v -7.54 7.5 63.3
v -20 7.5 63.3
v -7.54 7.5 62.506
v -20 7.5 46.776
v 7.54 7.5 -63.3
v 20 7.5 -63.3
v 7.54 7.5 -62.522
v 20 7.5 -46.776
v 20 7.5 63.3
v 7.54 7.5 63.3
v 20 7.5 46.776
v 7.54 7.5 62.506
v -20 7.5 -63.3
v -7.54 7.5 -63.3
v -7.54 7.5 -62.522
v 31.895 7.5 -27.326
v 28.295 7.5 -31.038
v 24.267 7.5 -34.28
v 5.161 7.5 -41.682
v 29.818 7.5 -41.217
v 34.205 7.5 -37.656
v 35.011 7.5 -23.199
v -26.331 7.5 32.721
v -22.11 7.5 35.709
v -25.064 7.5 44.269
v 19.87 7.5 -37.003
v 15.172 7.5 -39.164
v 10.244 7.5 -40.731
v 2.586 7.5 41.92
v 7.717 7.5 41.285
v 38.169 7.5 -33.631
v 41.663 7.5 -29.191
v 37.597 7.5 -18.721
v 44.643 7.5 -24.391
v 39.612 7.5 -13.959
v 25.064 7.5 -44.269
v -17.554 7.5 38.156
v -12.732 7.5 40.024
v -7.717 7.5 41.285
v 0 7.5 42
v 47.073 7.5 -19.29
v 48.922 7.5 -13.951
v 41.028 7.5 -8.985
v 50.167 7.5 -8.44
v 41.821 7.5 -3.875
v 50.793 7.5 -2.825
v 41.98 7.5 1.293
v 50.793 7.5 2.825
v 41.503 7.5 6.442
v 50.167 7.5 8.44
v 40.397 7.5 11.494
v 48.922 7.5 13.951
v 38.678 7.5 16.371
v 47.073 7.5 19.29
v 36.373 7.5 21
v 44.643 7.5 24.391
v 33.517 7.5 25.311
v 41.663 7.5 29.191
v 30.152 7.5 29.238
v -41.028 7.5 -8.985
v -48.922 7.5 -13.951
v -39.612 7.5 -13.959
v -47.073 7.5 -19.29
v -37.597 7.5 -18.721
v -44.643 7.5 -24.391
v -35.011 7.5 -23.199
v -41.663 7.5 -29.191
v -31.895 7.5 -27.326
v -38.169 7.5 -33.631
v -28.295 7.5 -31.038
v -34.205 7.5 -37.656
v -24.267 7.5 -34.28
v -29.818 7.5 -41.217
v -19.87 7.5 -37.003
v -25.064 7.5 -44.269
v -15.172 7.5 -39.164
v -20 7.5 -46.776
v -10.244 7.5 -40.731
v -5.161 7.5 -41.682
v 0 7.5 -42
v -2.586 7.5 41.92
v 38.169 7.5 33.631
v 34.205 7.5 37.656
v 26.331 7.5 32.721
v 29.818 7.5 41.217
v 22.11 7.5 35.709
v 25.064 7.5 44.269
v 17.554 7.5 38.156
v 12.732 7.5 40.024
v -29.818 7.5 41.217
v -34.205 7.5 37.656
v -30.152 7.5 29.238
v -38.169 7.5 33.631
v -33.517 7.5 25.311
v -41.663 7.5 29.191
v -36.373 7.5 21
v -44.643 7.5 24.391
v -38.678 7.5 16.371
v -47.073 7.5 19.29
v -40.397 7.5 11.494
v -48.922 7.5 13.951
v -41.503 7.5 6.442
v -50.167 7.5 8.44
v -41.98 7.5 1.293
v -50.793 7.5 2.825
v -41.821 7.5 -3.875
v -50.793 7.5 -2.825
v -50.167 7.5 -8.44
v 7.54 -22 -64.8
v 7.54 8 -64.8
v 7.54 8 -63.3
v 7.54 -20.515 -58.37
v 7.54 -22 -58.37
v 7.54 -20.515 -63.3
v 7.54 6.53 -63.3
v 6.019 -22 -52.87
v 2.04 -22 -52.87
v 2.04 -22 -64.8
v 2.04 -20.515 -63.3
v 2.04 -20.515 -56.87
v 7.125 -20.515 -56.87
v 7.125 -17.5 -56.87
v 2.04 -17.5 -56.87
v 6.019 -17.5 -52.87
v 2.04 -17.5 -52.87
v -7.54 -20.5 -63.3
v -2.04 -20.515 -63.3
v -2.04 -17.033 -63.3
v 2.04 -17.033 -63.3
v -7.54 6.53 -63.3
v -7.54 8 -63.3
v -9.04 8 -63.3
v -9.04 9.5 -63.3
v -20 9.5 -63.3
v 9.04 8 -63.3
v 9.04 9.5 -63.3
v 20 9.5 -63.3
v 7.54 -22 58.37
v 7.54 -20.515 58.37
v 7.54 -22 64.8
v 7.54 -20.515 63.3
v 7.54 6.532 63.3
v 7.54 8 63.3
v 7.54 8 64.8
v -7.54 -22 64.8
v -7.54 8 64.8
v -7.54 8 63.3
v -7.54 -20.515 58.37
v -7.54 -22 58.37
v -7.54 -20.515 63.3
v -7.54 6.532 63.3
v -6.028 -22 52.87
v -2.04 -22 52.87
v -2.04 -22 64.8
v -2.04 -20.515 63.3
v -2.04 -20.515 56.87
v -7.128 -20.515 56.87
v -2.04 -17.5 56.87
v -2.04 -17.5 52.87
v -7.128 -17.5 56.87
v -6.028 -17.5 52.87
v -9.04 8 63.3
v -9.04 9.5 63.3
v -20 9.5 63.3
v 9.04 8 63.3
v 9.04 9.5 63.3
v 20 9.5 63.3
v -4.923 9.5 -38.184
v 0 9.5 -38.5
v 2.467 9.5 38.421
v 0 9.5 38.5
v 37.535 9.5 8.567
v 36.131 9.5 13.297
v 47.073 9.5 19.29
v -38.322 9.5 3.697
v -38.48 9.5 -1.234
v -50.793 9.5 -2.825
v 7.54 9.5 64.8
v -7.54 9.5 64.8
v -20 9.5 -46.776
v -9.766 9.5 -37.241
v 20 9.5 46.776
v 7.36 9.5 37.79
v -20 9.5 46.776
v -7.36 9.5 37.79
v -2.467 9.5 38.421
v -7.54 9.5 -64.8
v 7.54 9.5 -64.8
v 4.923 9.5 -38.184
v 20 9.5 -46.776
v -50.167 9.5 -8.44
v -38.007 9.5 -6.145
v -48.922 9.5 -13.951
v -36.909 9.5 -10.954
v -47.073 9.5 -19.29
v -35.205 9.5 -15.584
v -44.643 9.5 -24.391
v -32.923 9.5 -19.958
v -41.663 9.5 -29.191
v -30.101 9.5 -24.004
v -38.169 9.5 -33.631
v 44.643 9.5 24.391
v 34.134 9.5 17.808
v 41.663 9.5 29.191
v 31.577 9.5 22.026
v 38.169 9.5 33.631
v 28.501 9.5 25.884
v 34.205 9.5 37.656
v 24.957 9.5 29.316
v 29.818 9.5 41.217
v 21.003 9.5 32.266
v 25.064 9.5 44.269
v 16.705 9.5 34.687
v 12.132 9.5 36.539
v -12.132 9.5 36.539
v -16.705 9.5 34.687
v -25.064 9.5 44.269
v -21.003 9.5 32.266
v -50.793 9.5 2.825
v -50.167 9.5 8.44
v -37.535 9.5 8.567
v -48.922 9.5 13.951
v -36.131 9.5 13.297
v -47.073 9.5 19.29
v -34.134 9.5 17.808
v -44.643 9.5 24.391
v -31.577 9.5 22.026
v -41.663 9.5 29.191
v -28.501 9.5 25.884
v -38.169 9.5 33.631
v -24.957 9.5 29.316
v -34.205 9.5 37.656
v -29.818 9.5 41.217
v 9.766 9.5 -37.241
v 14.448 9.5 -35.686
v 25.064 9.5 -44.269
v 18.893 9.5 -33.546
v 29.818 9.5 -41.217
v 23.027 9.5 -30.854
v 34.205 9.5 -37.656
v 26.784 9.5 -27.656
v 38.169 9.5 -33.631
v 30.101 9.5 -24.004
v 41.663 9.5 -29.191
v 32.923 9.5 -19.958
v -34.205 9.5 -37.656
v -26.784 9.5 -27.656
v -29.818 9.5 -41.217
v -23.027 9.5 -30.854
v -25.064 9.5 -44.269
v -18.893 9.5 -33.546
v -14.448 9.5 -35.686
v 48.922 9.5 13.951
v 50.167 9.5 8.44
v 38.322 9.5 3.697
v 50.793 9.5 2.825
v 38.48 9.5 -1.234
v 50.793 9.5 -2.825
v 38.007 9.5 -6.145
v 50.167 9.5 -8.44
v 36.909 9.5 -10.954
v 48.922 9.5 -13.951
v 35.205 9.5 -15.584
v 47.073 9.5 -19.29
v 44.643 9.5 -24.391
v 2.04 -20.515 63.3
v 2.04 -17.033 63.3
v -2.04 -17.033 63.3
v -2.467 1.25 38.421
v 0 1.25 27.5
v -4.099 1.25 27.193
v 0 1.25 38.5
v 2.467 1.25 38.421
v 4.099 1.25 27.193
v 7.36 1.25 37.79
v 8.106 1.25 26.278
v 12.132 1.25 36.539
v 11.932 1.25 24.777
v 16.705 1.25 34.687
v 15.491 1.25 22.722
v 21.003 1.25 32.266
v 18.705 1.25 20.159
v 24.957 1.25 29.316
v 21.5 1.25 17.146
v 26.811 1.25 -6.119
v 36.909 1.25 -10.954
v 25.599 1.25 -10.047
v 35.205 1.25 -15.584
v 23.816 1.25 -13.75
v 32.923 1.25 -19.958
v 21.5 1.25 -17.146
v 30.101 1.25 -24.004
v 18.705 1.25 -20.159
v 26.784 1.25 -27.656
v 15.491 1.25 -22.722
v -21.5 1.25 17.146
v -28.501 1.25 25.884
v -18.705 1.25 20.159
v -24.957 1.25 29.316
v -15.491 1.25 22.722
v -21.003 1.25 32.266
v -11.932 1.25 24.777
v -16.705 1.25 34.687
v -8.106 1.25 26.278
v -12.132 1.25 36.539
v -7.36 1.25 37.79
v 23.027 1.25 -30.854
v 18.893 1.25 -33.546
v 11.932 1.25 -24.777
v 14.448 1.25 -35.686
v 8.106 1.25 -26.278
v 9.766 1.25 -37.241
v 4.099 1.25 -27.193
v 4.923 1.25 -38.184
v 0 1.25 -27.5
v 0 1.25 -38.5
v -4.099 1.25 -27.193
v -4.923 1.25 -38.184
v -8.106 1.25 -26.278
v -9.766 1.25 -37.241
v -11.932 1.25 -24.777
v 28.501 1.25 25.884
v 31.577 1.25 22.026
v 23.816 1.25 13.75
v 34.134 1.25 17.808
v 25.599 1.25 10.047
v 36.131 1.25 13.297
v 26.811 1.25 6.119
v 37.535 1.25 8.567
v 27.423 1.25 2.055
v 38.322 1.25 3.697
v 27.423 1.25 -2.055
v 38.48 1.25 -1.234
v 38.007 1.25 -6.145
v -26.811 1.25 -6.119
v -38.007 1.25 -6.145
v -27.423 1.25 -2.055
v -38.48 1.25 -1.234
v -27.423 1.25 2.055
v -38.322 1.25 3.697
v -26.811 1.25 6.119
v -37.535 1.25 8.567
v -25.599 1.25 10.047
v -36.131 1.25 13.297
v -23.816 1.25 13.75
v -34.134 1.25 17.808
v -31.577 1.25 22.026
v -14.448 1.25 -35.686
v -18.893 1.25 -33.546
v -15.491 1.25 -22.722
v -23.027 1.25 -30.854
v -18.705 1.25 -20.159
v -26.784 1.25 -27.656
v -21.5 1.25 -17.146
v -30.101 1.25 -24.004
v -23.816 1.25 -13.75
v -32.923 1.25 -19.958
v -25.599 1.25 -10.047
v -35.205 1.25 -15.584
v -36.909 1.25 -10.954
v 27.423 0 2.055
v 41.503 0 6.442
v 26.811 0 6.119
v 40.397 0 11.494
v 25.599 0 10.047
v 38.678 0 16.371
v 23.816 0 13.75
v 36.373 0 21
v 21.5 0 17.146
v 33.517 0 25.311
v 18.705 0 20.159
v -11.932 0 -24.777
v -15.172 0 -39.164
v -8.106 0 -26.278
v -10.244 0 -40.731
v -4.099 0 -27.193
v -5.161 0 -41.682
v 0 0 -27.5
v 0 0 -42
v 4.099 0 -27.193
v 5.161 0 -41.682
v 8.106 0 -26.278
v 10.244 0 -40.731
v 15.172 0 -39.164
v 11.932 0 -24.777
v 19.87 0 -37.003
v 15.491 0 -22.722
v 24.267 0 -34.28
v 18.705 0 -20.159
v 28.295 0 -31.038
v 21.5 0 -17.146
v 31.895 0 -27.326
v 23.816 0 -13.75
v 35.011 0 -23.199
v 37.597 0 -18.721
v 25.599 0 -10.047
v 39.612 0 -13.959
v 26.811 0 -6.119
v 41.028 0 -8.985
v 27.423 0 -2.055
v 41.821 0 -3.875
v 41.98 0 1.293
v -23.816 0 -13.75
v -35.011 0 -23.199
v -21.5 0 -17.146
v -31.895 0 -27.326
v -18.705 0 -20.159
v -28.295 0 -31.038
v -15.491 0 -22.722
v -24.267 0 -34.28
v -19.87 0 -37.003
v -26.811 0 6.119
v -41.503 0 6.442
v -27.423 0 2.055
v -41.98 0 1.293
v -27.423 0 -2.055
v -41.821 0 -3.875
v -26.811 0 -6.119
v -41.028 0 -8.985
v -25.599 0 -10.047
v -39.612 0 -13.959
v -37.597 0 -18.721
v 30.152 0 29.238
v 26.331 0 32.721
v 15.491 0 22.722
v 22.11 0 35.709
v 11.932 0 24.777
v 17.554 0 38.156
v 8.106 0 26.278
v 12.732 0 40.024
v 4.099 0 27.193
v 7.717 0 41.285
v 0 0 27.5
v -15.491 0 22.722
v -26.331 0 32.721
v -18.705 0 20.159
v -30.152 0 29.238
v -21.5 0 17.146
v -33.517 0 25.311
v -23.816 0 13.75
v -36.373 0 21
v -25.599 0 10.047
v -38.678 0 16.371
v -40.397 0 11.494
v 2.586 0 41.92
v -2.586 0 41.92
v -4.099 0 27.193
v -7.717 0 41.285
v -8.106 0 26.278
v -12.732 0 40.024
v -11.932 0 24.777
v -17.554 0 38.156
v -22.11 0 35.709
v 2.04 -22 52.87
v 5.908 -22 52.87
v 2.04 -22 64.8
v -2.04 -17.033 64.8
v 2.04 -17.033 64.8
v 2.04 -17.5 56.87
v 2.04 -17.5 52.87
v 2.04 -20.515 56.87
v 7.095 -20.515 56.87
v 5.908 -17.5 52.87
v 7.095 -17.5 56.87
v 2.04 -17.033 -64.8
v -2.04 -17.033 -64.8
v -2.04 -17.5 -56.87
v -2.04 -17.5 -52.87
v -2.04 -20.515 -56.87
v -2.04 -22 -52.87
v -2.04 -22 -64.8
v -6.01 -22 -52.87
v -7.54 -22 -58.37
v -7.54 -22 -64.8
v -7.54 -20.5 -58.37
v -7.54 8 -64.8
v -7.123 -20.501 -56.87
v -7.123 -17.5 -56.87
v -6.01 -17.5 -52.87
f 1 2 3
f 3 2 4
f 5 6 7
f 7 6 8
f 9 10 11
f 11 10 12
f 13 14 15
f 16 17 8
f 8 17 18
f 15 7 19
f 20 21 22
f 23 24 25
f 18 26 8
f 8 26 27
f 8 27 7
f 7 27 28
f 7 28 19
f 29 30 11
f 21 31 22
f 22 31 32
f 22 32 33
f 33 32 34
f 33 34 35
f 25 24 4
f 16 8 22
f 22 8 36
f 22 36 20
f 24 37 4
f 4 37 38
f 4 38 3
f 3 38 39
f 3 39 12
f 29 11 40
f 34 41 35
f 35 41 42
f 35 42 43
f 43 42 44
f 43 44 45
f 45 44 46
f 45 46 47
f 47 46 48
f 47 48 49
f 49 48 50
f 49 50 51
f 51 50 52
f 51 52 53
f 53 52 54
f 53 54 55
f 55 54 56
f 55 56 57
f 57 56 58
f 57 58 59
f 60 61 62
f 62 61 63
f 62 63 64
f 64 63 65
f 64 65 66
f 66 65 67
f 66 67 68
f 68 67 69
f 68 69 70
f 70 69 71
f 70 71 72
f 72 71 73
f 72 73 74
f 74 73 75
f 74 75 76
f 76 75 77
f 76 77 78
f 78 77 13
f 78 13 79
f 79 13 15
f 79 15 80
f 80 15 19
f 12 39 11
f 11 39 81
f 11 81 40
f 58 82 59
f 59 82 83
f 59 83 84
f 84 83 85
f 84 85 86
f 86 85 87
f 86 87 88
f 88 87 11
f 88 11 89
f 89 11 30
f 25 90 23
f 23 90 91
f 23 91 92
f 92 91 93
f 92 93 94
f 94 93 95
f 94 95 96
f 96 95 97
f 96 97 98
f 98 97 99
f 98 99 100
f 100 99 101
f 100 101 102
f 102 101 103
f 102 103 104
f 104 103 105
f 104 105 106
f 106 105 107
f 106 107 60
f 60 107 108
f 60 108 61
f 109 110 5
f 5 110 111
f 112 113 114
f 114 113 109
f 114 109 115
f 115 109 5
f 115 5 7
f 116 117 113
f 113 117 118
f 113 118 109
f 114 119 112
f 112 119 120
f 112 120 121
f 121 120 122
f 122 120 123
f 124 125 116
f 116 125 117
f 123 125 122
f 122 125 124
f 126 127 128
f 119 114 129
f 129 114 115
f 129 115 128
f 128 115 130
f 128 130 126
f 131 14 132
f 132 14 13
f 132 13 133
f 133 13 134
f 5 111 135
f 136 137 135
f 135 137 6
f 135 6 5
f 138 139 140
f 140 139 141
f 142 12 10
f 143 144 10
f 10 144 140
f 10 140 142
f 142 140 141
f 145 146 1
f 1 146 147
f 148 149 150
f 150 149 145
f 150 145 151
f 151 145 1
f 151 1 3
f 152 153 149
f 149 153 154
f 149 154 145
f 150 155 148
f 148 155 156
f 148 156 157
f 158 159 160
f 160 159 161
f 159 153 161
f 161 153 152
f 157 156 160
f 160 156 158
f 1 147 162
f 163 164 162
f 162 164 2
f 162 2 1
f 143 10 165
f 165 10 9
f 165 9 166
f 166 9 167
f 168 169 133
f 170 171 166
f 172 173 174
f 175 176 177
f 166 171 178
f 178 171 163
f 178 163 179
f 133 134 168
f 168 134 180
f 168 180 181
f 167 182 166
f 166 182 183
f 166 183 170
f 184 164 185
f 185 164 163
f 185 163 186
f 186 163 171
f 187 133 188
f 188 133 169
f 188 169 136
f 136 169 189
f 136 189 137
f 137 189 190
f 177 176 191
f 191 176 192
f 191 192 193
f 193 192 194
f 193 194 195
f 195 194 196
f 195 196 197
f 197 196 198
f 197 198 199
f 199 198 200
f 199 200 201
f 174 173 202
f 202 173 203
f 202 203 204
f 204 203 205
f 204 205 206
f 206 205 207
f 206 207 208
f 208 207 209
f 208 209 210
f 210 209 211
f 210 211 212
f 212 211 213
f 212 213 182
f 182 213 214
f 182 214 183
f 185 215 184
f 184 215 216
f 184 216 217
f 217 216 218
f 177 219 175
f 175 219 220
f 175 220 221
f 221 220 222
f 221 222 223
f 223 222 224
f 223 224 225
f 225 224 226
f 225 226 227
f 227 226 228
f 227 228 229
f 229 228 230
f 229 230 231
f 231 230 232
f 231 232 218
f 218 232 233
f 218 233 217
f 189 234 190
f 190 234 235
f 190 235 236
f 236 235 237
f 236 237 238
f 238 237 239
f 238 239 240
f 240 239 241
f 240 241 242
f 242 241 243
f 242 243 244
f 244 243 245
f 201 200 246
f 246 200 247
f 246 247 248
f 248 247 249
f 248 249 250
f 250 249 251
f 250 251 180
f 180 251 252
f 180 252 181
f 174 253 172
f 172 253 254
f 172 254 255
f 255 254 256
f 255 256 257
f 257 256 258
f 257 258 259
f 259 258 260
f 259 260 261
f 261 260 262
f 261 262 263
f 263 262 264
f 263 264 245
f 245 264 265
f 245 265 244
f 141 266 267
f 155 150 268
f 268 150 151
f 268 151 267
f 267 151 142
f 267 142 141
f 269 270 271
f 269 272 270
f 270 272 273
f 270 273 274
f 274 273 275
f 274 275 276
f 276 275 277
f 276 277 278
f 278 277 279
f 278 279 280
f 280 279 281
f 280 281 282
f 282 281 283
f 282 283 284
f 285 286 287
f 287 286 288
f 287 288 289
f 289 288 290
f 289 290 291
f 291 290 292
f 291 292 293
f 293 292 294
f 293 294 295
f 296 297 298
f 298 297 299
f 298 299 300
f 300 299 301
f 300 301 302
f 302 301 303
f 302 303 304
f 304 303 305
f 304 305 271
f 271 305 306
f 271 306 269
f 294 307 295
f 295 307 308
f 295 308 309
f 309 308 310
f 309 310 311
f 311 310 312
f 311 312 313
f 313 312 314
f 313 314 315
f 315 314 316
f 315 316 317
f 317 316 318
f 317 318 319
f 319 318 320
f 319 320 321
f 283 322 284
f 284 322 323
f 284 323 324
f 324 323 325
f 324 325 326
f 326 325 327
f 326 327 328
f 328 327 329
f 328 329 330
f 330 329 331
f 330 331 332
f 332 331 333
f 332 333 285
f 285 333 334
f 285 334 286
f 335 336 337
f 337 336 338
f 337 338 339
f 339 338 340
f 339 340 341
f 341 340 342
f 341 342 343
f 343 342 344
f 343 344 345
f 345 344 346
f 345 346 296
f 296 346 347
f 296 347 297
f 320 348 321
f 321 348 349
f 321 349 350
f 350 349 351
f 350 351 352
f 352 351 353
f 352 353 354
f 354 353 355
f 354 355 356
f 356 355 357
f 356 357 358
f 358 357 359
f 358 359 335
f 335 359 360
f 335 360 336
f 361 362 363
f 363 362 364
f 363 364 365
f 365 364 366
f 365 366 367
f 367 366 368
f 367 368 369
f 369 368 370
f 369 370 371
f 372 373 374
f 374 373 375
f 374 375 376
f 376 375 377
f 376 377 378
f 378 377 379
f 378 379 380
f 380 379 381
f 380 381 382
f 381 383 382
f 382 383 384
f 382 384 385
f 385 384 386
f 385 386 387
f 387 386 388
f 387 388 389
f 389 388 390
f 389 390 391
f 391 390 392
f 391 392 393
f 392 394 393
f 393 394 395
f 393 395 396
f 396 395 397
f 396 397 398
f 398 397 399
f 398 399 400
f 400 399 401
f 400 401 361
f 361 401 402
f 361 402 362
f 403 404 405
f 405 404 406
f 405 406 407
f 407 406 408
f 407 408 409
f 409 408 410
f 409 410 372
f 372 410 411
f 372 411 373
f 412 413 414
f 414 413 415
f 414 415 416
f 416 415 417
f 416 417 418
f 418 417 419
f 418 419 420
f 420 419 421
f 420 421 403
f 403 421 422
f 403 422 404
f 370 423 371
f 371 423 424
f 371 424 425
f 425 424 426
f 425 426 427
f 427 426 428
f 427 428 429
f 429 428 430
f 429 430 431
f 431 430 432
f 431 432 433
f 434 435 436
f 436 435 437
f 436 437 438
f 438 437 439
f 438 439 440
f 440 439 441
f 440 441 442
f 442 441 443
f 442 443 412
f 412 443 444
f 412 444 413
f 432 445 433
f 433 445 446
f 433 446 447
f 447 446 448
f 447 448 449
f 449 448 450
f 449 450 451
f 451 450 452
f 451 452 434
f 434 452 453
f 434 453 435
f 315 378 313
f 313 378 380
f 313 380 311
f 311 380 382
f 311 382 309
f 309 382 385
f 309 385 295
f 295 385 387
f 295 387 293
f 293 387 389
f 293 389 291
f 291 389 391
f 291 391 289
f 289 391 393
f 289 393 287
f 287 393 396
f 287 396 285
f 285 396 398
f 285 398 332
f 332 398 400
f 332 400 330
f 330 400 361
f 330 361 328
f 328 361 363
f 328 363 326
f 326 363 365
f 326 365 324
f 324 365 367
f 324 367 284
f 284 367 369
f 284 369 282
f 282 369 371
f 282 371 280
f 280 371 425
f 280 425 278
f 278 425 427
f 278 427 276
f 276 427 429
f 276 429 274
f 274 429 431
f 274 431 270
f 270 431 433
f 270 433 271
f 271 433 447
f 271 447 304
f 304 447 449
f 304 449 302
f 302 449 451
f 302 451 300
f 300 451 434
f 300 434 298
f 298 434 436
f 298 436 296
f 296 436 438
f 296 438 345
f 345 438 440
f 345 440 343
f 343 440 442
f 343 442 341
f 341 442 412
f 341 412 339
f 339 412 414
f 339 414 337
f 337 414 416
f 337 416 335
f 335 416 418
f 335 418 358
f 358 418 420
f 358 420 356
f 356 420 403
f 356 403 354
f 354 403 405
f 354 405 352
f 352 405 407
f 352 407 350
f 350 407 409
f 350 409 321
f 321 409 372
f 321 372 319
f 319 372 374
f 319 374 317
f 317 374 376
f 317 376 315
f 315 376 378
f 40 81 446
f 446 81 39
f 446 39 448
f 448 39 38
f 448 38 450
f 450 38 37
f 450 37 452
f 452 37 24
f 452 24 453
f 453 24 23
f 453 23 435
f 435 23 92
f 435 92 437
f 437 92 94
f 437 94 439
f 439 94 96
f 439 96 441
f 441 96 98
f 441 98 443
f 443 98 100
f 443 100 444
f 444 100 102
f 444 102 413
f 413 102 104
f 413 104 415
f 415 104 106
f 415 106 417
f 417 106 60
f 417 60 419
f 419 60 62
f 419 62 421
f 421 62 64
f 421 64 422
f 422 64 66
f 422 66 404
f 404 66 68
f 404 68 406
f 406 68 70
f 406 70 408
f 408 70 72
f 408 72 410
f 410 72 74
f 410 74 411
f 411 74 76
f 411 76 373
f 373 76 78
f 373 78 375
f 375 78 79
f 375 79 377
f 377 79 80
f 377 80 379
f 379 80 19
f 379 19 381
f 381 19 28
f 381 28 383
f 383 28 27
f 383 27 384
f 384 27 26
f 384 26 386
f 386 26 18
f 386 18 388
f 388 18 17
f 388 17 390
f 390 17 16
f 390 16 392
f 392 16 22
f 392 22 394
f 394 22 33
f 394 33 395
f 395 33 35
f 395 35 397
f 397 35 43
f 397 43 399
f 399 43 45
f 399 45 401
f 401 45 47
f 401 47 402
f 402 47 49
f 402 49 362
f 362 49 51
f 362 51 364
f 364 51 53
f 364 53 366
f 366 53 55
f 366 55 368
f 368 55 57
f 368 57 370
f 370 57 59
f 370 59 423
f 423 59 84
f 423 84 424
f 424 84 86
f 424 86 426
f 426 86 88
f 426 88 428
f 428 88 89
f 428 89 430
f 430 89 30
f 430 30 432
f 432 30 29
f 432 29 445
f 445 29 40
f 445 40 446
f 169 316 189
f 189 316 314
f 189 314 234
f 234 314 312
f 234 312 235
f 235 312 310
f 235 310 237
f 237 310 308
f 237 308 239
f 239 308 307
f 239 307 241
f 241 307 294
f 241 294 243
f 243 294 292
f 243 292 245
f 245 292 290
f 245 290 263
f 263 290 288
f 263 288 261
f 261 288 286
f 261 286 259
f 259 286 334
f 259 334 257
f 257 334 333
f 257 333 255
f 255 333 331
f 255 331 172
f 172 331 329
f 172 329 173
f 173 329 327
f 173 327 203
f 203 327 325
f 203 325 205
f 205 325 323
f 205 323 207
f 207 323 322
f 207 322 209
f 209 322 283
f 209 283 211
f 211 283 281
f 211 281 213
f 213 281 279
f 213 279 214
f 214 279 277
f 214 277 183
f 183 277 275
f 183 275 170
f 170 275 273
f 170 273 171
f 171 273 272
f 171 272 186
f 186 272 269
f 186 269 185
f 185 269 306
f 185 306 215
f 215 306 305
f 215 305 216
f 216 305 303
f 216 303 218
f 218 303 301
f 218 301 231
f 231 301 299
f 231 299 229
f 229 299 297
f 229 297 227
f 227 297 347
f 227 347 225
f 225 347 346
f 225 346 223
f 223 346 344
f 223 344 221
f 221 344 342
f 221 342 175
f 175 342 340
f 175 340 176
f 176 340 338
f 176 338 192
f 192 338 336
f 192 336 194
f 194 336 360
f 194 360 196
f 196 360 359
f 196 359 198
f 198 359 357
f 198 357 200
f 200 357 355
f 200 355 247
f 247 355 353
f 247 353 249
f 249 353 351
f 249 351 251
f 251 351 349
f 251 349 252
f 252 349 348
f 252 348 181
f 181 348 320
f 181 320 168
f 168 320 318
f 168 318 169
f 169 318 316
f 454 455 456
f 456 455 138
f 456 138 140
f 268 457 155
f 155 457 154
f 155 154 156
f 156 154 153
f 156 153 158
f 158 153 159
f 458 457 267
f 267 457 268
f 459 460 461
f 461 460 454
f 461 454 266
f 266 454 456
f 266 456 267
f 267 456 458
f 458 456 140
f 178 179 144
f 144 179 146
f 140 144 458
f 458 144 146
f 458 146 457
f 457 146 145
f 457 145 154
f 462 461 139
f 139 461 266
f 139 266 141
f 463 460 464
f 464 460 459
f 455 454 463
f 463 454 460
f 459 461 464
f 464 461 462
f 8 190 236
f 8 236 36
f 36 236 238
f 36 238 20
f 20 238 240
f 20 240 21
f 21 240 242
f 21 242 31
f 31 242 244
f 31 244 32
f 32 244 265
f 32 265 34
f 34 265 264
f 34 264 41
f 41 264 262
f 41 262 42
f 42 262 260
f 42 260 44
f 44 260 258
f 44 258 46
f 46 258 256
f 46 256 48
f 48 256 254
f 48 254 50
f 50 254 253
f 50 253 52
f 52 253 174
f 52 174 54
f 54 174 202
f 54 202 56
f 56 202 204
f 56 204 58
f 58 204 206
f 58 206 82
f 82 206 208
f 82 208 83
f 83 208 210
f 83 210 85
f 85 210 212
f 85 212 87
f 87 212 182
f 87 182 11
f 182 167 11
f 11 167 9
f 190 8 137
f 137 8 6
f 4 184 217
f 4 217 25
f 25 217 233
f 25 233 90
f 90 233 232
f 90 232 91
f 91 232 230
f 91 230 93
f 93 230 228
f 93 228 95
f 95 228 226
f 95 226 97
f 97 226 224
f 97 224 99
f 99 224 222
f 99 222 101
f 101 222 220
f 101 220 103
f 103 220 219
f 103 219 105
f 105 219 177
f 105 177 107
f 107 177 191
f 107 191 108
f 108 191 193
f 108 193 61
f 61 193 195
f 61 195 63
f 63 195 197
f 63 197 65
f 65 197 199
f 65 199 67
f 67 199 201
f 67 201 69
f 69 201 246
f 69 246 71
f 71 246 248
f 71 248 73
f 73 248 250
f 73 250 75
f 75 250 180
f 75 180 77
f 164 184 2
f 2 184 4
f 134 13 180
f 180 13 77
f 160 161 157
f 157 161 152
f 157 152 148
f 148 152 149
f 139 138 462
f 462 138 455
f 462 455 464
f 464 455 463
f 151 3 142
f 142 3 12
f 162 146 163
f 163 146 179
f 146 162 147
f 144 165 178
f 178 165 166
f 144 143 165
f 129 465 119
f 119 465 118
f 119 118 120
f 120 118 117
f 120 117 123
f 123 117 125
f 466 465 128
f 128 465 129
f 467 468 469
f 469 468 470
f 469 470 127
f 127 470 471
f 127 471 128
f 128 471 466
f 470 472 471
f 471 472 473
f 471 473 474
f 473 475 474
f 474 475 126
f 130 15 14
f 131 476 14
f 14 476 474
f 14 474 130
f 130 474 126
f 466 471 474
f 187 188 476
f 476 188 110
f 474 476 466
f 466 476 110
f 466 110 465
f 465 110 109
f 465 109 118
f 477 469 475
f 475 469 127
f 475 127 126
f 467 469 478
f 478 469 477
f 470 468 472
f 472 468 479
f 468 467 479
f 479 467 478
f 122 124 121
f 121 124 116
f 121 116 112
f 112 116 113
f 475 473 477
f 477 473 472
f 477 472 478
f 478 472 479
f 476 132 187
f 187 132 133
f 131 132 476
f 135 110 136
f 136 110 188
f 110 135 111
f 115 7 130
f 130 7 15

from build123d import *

# Parameters (mm, degrees)
SKETCH_1_R          = 38.5
SKETCH_1_R_2        = 27.5
EXTRUDE_1_DEPTH     = 1.25
SKETCH_3_W          = 126.6
SKETCH_3_H          = 126.6
SKETCH_3_R          = 38.5
EXTRUDE_2_DEPTH     = 2
EXTRUDE_3_REACH     = 92.022
SKETCH_4_R          = 42
SKETCH_4_R_2        = 38.5
EXTRUDE_4_DEPTH     = 1.5
SKETCH_6_W          = 5.5
SKETCH_6_H          = 1.485
EXTRUDE_5_DEPTH     = 6.43
SKETCH_7_W          = 5.5
SKETCH_7_H          = 4.5
EXTRUDE_6_DEPTH     = 4
CUT_EXTRUDE_1_DEPTH = 96.907142591
CUT_EXTRUDE_2_DEPTH = 10
EXTRUDE_7_DEPTH     = 15.08
EXTRUDE_8_DEPTH     = 1.5
EXTRUDE_9_DEPTH     = 1.5
SKETCH_17_W         = 5.5
SKETCH_17_H         = 1.485
EXTRUDE_10_DEPTH    = 6.43
SKETCH_18_W         = 5.5
SKETCH_18_H         = 4
EXTRUDE_12_DEPTH    = 4.5
CUT_EXTRUDE_3_DEPTH = 7
EXTRUDE_13_DEPTH    = 1.5
EXTRUDE_14_DEPTH    = 15.08


with BuildPart() as part:
    # 草圖1 → 填料-伸長1 (new body)
    with BuildSketch(Plane(origin=(0, 0, 0), x_dir=(1, 0, 0), z_dir=(0, 1, 0))):
        with Locations(Location((0, 0, 0), (0, 0, 270))):
            Circle(SKETCH_1_R)
        with Locations(Location((0, 0, 0), (0, 0, 270))):
            Circle(SKETCH_1_R_2, mode=Mode.SUBTRACT)
    extrude(amount=EXTRUDE_1_DEPTH)


with BuildPart() as body_2:
    # 草圖3 → 填料-伸長2 (new body)
    with BuildSketch(Plane(origin=(0, 7.5, 0), x_dir=(1, 0, 0), z_dir=(0, 1, 0))):
        Rectangle(SKETCH_3_W, SKETCH_3_H)
        with Locations(Location((0, 0, 0), (0, 0, 270))):
            Circle(SKETCH_3_R, mode=Mode.SUBTRACT)
    extrude(amount=EXTRUDE_2_DEPTH)

    # 草圖4 → 填料-伸長3 (add, up to next)
    with BuildSketch(Plane.XZ, mode=Mode.PRIVATE) as extrude_3_sk1:
        with Locations(Location((0, 0, 0), (0, 0, 270))):
            Circle(SKETCH_4_R)
        with Locations(Location((0, 0, 0), (0, 0, 90))):
            Circle(SKETCH_4_R_2, mode=Mode.SUBTRACT)
    extrude_3_tool1 = extrude(extrude_3_sk1.sketch, amount=-EXTRUDE_3_REACH, mode=Mode.PRIVATE) - body_2.part

    add(part.part)  # 填料-伸長3 merges part
    add(extrude_3_tool1.solids().sort_by_distance((0, 0, 40.812061))[0])

    # 草圖5 → 填料-伸長4 (add)
    with BuildSketch(Plane.XY.offset(63.3)):
        Polygon((-2.04, -22), (-2.04, -17.033321832), (2.04, -17.033321832), (2.04, -22), (7.54, -22), (7.54, 9.5), (-7.54, 9.5), (-7.54, -22), align=None)
    extrude(amount=EXTRUDE_4_DEPTH)

    # 草圖6 → 填料-伸長5 (add)
    with BuildSketch(Plane(origin=(0, 0, 63.3), x_dir=(-1, 0, 0), z_dir=(0, 0, -1))):
        with Locations((-4.79, -21.2575)):
            Rectangle(SKETCH_6_W, SKETCH_6_H)
        with Locations((4.79, -21.2575)):
            Rectangle(SKETCH_6_W, SKETCH_6_H)
    extrude(amount=EXTRUDE_5_DEPTH)

    # 草圖7 → 填料-伸長6 (add)
    with BuildSketch(Plane(origin=(0, 0, 56.87), x_dir=(-1, 0, 0), z_dir=(0, 0, -1))):
        with Locations((-4.79, -19.75)):
            Rectangle(SKETCH_7_W, SKETCH_7_H)
        with Locations((4.79, -19.75)):
            Rectangle(SKETCH_7_W, SKETCH_7_H)
    extrude(amount=EXTRUDE_6_DEPTH)

    # 草圖8 → 除料-伸長1 (cut, through all)
    with BuildSketch(Plane(origin=(0, 9.5, 0), x_dir=(1, 0, 0), z_dir=(0, 1, 0))):
        with BuildLine():
            Line((-20, 46.775506025), (-20, 63.3))
            Line((-20, 63.3), (-63.3, 63.3))
            Line((-63.3, 63.3), (-63.3, -63.3))
            Line((-63.3, -63.3), (-20, -63.3))
            Line((-20, -63.3), (-20, -50.871877928))
            Line((-20, -50.871877928), (-20, -46.775506025))
            ThreePointArc((-20, -46.775506025), (-50.871877928, 0), (-20, 46.775506025))
        make_face()
        with BuildLine():
            Line((63.3, 63.3), (20, 63.3))
            Line((20, 63.3), (20, 46.775506025))
            ThreePointArc((20, 46.775506025), (42.458129507, 28.022405369), (50.871877928, 0))
            ThreePointArc((50.871877928, 0), (42.458129507, -28.022405369), (20, -46.775506025))
            Line((20, -46.775506025), (20, -50.871877928))
            Line((20, -50.871877928), (20, -63.3))
            Line((20, -63.3), (63.3, -63.3))
            Line((63.3, -63.3), (63.3, 63.3))
        make_face()
    extrude(amount=-CUT_EXTRUDE_1_DEPTH, mode=Mode.SUBTRACT)

    # 草圖10 → 除料-伸長2 (cut)
    with BuildSketch(Plane.XZ.offset(22)):
        Polygon((5.908233118, 52.87), (7.54, 52.87), (7.54, 58.37), align=None)
        Polygon((-7.54, 58.37), (-6.0283181, 52.87), (-7.54, 52.87), align=None)
    extrude(amount=-CUT_EXTRUDE_2_DEPTH, mode=Mode.SUBTRACT)

    # 草圖12 → 填料-伸長7 (add)
    with BuildSketch(Plane(origin=(7.54, 0, 0), x_dir=(0, 0, -1), z_dir=(1, 0, 0))):
        Polygon((-62.506477542, 7.5), (-63.3, 7.5), (-63.3, 6.532326517), align=None)
    extrude(amount=-EXTRUDE_7_DEPTH)

    # 草圖14 → 填料-伸長8 (add)
    with BuildSketch(Plane(origin=(0, 9.5, 0), x_dir=(1, 0, 0), z_dir=(0, 1, 0))):
        Polygon((-7.54, -64.8), (-9.04, -63.3), (-7.54, -63.3), align=None)
        Polygon((7.54, -64.8), (7.54, -63.3), (9.04, -63.3), align=None)
    extrude(amount=-EXTRUDE_8_DEPTH)

    # 草圖16 → 填料-伸長9 (add)
    with BuildSketch(Plane(origin=(0, 0, -63.3), x_dir=(-1, 0, 0), z_dir=(0, 0, -1))):
        Polygon((0, 9.5), (-7.54, 9.5), (-7.54, -22), (-2.04, -22), (-2.04, -17.033321832), (2.04, -17.033321832), (2.04, -22), (7.54, -22), (7.54, 9.5), align=None)
    extrude(amount=EXTRUDE_9_DEPTH)

    # 草圖17 → 填料-伸長10 (add)
    with BuildSketch(Plane.XY.offset(-63.3)):
        Polygon((-7.54, -22), (-7.54, -20.5), (-2.04, -20.515), (-2.04, -22), align=None)
        with Locations((4.79, -21.2575)):
            Rectangle(SKETCH_17_W, SKETCH_17_H)
    extrude(amount=EXTRUDE_10_DEPTH)

    # 草圖18 → 填料-伸長12 (add)
    with BuildSketch(Plane.XZ.offset(22)):
        with Locations((-4.79, -54.87)):
            Rectangle(SKETCH_18_W, SKETCH_18_H)
        with Locations((4.79, -54.87)):
            Rectangle(SKETCH_18_W, SKETCH_18_H)
    extrude(amount=-EXTRUDE_12_DEPTH)

    # 草圖19 → 除料-伸長3 (cut)
    with BuildSketch(Plane.XZ.offset(22)):
        Polygon((-7.54, -52.87), (-7.54, -58.37), (-6.010077166, -52.87), align=None)
        Polygon((7.54, -52.87), (7.54, -58.37), (6.019440026, -52.87), align=None)
    extrude(amount=-CUT_EXTRUDE_3_DEPTH, mode=Mode.SUBTRACT)

    # 草圖21 → 填料-伸長13 (add)
    with BuildSketch(Plane(origin=(0, 9.5, 0), x_dir=(1, 0, 0), z_dir=(0, 1, 0))):
        Polygon((-7.54, 64.8), (-9.04, 63.3), (-7.54, 63.3), align=None)
        Polygon((7.54, 64.8), (9.04, 63.3), (7.54, 63.3), align=None)
    extrude(amount=-EXTRUDE_13_DEPTH)

    # 草圖23 → 填料-伸長14 (add)
    with BuildSketch(Plane.ZY.offset(7.54)):
        Polygon((-62.521922408, 7.5), (-63.3, 7.5), (-63.3, 6.53), align=None)
    extrude(amount=-EXTRUDE_14_DEPTH)


solid = body_2.part
